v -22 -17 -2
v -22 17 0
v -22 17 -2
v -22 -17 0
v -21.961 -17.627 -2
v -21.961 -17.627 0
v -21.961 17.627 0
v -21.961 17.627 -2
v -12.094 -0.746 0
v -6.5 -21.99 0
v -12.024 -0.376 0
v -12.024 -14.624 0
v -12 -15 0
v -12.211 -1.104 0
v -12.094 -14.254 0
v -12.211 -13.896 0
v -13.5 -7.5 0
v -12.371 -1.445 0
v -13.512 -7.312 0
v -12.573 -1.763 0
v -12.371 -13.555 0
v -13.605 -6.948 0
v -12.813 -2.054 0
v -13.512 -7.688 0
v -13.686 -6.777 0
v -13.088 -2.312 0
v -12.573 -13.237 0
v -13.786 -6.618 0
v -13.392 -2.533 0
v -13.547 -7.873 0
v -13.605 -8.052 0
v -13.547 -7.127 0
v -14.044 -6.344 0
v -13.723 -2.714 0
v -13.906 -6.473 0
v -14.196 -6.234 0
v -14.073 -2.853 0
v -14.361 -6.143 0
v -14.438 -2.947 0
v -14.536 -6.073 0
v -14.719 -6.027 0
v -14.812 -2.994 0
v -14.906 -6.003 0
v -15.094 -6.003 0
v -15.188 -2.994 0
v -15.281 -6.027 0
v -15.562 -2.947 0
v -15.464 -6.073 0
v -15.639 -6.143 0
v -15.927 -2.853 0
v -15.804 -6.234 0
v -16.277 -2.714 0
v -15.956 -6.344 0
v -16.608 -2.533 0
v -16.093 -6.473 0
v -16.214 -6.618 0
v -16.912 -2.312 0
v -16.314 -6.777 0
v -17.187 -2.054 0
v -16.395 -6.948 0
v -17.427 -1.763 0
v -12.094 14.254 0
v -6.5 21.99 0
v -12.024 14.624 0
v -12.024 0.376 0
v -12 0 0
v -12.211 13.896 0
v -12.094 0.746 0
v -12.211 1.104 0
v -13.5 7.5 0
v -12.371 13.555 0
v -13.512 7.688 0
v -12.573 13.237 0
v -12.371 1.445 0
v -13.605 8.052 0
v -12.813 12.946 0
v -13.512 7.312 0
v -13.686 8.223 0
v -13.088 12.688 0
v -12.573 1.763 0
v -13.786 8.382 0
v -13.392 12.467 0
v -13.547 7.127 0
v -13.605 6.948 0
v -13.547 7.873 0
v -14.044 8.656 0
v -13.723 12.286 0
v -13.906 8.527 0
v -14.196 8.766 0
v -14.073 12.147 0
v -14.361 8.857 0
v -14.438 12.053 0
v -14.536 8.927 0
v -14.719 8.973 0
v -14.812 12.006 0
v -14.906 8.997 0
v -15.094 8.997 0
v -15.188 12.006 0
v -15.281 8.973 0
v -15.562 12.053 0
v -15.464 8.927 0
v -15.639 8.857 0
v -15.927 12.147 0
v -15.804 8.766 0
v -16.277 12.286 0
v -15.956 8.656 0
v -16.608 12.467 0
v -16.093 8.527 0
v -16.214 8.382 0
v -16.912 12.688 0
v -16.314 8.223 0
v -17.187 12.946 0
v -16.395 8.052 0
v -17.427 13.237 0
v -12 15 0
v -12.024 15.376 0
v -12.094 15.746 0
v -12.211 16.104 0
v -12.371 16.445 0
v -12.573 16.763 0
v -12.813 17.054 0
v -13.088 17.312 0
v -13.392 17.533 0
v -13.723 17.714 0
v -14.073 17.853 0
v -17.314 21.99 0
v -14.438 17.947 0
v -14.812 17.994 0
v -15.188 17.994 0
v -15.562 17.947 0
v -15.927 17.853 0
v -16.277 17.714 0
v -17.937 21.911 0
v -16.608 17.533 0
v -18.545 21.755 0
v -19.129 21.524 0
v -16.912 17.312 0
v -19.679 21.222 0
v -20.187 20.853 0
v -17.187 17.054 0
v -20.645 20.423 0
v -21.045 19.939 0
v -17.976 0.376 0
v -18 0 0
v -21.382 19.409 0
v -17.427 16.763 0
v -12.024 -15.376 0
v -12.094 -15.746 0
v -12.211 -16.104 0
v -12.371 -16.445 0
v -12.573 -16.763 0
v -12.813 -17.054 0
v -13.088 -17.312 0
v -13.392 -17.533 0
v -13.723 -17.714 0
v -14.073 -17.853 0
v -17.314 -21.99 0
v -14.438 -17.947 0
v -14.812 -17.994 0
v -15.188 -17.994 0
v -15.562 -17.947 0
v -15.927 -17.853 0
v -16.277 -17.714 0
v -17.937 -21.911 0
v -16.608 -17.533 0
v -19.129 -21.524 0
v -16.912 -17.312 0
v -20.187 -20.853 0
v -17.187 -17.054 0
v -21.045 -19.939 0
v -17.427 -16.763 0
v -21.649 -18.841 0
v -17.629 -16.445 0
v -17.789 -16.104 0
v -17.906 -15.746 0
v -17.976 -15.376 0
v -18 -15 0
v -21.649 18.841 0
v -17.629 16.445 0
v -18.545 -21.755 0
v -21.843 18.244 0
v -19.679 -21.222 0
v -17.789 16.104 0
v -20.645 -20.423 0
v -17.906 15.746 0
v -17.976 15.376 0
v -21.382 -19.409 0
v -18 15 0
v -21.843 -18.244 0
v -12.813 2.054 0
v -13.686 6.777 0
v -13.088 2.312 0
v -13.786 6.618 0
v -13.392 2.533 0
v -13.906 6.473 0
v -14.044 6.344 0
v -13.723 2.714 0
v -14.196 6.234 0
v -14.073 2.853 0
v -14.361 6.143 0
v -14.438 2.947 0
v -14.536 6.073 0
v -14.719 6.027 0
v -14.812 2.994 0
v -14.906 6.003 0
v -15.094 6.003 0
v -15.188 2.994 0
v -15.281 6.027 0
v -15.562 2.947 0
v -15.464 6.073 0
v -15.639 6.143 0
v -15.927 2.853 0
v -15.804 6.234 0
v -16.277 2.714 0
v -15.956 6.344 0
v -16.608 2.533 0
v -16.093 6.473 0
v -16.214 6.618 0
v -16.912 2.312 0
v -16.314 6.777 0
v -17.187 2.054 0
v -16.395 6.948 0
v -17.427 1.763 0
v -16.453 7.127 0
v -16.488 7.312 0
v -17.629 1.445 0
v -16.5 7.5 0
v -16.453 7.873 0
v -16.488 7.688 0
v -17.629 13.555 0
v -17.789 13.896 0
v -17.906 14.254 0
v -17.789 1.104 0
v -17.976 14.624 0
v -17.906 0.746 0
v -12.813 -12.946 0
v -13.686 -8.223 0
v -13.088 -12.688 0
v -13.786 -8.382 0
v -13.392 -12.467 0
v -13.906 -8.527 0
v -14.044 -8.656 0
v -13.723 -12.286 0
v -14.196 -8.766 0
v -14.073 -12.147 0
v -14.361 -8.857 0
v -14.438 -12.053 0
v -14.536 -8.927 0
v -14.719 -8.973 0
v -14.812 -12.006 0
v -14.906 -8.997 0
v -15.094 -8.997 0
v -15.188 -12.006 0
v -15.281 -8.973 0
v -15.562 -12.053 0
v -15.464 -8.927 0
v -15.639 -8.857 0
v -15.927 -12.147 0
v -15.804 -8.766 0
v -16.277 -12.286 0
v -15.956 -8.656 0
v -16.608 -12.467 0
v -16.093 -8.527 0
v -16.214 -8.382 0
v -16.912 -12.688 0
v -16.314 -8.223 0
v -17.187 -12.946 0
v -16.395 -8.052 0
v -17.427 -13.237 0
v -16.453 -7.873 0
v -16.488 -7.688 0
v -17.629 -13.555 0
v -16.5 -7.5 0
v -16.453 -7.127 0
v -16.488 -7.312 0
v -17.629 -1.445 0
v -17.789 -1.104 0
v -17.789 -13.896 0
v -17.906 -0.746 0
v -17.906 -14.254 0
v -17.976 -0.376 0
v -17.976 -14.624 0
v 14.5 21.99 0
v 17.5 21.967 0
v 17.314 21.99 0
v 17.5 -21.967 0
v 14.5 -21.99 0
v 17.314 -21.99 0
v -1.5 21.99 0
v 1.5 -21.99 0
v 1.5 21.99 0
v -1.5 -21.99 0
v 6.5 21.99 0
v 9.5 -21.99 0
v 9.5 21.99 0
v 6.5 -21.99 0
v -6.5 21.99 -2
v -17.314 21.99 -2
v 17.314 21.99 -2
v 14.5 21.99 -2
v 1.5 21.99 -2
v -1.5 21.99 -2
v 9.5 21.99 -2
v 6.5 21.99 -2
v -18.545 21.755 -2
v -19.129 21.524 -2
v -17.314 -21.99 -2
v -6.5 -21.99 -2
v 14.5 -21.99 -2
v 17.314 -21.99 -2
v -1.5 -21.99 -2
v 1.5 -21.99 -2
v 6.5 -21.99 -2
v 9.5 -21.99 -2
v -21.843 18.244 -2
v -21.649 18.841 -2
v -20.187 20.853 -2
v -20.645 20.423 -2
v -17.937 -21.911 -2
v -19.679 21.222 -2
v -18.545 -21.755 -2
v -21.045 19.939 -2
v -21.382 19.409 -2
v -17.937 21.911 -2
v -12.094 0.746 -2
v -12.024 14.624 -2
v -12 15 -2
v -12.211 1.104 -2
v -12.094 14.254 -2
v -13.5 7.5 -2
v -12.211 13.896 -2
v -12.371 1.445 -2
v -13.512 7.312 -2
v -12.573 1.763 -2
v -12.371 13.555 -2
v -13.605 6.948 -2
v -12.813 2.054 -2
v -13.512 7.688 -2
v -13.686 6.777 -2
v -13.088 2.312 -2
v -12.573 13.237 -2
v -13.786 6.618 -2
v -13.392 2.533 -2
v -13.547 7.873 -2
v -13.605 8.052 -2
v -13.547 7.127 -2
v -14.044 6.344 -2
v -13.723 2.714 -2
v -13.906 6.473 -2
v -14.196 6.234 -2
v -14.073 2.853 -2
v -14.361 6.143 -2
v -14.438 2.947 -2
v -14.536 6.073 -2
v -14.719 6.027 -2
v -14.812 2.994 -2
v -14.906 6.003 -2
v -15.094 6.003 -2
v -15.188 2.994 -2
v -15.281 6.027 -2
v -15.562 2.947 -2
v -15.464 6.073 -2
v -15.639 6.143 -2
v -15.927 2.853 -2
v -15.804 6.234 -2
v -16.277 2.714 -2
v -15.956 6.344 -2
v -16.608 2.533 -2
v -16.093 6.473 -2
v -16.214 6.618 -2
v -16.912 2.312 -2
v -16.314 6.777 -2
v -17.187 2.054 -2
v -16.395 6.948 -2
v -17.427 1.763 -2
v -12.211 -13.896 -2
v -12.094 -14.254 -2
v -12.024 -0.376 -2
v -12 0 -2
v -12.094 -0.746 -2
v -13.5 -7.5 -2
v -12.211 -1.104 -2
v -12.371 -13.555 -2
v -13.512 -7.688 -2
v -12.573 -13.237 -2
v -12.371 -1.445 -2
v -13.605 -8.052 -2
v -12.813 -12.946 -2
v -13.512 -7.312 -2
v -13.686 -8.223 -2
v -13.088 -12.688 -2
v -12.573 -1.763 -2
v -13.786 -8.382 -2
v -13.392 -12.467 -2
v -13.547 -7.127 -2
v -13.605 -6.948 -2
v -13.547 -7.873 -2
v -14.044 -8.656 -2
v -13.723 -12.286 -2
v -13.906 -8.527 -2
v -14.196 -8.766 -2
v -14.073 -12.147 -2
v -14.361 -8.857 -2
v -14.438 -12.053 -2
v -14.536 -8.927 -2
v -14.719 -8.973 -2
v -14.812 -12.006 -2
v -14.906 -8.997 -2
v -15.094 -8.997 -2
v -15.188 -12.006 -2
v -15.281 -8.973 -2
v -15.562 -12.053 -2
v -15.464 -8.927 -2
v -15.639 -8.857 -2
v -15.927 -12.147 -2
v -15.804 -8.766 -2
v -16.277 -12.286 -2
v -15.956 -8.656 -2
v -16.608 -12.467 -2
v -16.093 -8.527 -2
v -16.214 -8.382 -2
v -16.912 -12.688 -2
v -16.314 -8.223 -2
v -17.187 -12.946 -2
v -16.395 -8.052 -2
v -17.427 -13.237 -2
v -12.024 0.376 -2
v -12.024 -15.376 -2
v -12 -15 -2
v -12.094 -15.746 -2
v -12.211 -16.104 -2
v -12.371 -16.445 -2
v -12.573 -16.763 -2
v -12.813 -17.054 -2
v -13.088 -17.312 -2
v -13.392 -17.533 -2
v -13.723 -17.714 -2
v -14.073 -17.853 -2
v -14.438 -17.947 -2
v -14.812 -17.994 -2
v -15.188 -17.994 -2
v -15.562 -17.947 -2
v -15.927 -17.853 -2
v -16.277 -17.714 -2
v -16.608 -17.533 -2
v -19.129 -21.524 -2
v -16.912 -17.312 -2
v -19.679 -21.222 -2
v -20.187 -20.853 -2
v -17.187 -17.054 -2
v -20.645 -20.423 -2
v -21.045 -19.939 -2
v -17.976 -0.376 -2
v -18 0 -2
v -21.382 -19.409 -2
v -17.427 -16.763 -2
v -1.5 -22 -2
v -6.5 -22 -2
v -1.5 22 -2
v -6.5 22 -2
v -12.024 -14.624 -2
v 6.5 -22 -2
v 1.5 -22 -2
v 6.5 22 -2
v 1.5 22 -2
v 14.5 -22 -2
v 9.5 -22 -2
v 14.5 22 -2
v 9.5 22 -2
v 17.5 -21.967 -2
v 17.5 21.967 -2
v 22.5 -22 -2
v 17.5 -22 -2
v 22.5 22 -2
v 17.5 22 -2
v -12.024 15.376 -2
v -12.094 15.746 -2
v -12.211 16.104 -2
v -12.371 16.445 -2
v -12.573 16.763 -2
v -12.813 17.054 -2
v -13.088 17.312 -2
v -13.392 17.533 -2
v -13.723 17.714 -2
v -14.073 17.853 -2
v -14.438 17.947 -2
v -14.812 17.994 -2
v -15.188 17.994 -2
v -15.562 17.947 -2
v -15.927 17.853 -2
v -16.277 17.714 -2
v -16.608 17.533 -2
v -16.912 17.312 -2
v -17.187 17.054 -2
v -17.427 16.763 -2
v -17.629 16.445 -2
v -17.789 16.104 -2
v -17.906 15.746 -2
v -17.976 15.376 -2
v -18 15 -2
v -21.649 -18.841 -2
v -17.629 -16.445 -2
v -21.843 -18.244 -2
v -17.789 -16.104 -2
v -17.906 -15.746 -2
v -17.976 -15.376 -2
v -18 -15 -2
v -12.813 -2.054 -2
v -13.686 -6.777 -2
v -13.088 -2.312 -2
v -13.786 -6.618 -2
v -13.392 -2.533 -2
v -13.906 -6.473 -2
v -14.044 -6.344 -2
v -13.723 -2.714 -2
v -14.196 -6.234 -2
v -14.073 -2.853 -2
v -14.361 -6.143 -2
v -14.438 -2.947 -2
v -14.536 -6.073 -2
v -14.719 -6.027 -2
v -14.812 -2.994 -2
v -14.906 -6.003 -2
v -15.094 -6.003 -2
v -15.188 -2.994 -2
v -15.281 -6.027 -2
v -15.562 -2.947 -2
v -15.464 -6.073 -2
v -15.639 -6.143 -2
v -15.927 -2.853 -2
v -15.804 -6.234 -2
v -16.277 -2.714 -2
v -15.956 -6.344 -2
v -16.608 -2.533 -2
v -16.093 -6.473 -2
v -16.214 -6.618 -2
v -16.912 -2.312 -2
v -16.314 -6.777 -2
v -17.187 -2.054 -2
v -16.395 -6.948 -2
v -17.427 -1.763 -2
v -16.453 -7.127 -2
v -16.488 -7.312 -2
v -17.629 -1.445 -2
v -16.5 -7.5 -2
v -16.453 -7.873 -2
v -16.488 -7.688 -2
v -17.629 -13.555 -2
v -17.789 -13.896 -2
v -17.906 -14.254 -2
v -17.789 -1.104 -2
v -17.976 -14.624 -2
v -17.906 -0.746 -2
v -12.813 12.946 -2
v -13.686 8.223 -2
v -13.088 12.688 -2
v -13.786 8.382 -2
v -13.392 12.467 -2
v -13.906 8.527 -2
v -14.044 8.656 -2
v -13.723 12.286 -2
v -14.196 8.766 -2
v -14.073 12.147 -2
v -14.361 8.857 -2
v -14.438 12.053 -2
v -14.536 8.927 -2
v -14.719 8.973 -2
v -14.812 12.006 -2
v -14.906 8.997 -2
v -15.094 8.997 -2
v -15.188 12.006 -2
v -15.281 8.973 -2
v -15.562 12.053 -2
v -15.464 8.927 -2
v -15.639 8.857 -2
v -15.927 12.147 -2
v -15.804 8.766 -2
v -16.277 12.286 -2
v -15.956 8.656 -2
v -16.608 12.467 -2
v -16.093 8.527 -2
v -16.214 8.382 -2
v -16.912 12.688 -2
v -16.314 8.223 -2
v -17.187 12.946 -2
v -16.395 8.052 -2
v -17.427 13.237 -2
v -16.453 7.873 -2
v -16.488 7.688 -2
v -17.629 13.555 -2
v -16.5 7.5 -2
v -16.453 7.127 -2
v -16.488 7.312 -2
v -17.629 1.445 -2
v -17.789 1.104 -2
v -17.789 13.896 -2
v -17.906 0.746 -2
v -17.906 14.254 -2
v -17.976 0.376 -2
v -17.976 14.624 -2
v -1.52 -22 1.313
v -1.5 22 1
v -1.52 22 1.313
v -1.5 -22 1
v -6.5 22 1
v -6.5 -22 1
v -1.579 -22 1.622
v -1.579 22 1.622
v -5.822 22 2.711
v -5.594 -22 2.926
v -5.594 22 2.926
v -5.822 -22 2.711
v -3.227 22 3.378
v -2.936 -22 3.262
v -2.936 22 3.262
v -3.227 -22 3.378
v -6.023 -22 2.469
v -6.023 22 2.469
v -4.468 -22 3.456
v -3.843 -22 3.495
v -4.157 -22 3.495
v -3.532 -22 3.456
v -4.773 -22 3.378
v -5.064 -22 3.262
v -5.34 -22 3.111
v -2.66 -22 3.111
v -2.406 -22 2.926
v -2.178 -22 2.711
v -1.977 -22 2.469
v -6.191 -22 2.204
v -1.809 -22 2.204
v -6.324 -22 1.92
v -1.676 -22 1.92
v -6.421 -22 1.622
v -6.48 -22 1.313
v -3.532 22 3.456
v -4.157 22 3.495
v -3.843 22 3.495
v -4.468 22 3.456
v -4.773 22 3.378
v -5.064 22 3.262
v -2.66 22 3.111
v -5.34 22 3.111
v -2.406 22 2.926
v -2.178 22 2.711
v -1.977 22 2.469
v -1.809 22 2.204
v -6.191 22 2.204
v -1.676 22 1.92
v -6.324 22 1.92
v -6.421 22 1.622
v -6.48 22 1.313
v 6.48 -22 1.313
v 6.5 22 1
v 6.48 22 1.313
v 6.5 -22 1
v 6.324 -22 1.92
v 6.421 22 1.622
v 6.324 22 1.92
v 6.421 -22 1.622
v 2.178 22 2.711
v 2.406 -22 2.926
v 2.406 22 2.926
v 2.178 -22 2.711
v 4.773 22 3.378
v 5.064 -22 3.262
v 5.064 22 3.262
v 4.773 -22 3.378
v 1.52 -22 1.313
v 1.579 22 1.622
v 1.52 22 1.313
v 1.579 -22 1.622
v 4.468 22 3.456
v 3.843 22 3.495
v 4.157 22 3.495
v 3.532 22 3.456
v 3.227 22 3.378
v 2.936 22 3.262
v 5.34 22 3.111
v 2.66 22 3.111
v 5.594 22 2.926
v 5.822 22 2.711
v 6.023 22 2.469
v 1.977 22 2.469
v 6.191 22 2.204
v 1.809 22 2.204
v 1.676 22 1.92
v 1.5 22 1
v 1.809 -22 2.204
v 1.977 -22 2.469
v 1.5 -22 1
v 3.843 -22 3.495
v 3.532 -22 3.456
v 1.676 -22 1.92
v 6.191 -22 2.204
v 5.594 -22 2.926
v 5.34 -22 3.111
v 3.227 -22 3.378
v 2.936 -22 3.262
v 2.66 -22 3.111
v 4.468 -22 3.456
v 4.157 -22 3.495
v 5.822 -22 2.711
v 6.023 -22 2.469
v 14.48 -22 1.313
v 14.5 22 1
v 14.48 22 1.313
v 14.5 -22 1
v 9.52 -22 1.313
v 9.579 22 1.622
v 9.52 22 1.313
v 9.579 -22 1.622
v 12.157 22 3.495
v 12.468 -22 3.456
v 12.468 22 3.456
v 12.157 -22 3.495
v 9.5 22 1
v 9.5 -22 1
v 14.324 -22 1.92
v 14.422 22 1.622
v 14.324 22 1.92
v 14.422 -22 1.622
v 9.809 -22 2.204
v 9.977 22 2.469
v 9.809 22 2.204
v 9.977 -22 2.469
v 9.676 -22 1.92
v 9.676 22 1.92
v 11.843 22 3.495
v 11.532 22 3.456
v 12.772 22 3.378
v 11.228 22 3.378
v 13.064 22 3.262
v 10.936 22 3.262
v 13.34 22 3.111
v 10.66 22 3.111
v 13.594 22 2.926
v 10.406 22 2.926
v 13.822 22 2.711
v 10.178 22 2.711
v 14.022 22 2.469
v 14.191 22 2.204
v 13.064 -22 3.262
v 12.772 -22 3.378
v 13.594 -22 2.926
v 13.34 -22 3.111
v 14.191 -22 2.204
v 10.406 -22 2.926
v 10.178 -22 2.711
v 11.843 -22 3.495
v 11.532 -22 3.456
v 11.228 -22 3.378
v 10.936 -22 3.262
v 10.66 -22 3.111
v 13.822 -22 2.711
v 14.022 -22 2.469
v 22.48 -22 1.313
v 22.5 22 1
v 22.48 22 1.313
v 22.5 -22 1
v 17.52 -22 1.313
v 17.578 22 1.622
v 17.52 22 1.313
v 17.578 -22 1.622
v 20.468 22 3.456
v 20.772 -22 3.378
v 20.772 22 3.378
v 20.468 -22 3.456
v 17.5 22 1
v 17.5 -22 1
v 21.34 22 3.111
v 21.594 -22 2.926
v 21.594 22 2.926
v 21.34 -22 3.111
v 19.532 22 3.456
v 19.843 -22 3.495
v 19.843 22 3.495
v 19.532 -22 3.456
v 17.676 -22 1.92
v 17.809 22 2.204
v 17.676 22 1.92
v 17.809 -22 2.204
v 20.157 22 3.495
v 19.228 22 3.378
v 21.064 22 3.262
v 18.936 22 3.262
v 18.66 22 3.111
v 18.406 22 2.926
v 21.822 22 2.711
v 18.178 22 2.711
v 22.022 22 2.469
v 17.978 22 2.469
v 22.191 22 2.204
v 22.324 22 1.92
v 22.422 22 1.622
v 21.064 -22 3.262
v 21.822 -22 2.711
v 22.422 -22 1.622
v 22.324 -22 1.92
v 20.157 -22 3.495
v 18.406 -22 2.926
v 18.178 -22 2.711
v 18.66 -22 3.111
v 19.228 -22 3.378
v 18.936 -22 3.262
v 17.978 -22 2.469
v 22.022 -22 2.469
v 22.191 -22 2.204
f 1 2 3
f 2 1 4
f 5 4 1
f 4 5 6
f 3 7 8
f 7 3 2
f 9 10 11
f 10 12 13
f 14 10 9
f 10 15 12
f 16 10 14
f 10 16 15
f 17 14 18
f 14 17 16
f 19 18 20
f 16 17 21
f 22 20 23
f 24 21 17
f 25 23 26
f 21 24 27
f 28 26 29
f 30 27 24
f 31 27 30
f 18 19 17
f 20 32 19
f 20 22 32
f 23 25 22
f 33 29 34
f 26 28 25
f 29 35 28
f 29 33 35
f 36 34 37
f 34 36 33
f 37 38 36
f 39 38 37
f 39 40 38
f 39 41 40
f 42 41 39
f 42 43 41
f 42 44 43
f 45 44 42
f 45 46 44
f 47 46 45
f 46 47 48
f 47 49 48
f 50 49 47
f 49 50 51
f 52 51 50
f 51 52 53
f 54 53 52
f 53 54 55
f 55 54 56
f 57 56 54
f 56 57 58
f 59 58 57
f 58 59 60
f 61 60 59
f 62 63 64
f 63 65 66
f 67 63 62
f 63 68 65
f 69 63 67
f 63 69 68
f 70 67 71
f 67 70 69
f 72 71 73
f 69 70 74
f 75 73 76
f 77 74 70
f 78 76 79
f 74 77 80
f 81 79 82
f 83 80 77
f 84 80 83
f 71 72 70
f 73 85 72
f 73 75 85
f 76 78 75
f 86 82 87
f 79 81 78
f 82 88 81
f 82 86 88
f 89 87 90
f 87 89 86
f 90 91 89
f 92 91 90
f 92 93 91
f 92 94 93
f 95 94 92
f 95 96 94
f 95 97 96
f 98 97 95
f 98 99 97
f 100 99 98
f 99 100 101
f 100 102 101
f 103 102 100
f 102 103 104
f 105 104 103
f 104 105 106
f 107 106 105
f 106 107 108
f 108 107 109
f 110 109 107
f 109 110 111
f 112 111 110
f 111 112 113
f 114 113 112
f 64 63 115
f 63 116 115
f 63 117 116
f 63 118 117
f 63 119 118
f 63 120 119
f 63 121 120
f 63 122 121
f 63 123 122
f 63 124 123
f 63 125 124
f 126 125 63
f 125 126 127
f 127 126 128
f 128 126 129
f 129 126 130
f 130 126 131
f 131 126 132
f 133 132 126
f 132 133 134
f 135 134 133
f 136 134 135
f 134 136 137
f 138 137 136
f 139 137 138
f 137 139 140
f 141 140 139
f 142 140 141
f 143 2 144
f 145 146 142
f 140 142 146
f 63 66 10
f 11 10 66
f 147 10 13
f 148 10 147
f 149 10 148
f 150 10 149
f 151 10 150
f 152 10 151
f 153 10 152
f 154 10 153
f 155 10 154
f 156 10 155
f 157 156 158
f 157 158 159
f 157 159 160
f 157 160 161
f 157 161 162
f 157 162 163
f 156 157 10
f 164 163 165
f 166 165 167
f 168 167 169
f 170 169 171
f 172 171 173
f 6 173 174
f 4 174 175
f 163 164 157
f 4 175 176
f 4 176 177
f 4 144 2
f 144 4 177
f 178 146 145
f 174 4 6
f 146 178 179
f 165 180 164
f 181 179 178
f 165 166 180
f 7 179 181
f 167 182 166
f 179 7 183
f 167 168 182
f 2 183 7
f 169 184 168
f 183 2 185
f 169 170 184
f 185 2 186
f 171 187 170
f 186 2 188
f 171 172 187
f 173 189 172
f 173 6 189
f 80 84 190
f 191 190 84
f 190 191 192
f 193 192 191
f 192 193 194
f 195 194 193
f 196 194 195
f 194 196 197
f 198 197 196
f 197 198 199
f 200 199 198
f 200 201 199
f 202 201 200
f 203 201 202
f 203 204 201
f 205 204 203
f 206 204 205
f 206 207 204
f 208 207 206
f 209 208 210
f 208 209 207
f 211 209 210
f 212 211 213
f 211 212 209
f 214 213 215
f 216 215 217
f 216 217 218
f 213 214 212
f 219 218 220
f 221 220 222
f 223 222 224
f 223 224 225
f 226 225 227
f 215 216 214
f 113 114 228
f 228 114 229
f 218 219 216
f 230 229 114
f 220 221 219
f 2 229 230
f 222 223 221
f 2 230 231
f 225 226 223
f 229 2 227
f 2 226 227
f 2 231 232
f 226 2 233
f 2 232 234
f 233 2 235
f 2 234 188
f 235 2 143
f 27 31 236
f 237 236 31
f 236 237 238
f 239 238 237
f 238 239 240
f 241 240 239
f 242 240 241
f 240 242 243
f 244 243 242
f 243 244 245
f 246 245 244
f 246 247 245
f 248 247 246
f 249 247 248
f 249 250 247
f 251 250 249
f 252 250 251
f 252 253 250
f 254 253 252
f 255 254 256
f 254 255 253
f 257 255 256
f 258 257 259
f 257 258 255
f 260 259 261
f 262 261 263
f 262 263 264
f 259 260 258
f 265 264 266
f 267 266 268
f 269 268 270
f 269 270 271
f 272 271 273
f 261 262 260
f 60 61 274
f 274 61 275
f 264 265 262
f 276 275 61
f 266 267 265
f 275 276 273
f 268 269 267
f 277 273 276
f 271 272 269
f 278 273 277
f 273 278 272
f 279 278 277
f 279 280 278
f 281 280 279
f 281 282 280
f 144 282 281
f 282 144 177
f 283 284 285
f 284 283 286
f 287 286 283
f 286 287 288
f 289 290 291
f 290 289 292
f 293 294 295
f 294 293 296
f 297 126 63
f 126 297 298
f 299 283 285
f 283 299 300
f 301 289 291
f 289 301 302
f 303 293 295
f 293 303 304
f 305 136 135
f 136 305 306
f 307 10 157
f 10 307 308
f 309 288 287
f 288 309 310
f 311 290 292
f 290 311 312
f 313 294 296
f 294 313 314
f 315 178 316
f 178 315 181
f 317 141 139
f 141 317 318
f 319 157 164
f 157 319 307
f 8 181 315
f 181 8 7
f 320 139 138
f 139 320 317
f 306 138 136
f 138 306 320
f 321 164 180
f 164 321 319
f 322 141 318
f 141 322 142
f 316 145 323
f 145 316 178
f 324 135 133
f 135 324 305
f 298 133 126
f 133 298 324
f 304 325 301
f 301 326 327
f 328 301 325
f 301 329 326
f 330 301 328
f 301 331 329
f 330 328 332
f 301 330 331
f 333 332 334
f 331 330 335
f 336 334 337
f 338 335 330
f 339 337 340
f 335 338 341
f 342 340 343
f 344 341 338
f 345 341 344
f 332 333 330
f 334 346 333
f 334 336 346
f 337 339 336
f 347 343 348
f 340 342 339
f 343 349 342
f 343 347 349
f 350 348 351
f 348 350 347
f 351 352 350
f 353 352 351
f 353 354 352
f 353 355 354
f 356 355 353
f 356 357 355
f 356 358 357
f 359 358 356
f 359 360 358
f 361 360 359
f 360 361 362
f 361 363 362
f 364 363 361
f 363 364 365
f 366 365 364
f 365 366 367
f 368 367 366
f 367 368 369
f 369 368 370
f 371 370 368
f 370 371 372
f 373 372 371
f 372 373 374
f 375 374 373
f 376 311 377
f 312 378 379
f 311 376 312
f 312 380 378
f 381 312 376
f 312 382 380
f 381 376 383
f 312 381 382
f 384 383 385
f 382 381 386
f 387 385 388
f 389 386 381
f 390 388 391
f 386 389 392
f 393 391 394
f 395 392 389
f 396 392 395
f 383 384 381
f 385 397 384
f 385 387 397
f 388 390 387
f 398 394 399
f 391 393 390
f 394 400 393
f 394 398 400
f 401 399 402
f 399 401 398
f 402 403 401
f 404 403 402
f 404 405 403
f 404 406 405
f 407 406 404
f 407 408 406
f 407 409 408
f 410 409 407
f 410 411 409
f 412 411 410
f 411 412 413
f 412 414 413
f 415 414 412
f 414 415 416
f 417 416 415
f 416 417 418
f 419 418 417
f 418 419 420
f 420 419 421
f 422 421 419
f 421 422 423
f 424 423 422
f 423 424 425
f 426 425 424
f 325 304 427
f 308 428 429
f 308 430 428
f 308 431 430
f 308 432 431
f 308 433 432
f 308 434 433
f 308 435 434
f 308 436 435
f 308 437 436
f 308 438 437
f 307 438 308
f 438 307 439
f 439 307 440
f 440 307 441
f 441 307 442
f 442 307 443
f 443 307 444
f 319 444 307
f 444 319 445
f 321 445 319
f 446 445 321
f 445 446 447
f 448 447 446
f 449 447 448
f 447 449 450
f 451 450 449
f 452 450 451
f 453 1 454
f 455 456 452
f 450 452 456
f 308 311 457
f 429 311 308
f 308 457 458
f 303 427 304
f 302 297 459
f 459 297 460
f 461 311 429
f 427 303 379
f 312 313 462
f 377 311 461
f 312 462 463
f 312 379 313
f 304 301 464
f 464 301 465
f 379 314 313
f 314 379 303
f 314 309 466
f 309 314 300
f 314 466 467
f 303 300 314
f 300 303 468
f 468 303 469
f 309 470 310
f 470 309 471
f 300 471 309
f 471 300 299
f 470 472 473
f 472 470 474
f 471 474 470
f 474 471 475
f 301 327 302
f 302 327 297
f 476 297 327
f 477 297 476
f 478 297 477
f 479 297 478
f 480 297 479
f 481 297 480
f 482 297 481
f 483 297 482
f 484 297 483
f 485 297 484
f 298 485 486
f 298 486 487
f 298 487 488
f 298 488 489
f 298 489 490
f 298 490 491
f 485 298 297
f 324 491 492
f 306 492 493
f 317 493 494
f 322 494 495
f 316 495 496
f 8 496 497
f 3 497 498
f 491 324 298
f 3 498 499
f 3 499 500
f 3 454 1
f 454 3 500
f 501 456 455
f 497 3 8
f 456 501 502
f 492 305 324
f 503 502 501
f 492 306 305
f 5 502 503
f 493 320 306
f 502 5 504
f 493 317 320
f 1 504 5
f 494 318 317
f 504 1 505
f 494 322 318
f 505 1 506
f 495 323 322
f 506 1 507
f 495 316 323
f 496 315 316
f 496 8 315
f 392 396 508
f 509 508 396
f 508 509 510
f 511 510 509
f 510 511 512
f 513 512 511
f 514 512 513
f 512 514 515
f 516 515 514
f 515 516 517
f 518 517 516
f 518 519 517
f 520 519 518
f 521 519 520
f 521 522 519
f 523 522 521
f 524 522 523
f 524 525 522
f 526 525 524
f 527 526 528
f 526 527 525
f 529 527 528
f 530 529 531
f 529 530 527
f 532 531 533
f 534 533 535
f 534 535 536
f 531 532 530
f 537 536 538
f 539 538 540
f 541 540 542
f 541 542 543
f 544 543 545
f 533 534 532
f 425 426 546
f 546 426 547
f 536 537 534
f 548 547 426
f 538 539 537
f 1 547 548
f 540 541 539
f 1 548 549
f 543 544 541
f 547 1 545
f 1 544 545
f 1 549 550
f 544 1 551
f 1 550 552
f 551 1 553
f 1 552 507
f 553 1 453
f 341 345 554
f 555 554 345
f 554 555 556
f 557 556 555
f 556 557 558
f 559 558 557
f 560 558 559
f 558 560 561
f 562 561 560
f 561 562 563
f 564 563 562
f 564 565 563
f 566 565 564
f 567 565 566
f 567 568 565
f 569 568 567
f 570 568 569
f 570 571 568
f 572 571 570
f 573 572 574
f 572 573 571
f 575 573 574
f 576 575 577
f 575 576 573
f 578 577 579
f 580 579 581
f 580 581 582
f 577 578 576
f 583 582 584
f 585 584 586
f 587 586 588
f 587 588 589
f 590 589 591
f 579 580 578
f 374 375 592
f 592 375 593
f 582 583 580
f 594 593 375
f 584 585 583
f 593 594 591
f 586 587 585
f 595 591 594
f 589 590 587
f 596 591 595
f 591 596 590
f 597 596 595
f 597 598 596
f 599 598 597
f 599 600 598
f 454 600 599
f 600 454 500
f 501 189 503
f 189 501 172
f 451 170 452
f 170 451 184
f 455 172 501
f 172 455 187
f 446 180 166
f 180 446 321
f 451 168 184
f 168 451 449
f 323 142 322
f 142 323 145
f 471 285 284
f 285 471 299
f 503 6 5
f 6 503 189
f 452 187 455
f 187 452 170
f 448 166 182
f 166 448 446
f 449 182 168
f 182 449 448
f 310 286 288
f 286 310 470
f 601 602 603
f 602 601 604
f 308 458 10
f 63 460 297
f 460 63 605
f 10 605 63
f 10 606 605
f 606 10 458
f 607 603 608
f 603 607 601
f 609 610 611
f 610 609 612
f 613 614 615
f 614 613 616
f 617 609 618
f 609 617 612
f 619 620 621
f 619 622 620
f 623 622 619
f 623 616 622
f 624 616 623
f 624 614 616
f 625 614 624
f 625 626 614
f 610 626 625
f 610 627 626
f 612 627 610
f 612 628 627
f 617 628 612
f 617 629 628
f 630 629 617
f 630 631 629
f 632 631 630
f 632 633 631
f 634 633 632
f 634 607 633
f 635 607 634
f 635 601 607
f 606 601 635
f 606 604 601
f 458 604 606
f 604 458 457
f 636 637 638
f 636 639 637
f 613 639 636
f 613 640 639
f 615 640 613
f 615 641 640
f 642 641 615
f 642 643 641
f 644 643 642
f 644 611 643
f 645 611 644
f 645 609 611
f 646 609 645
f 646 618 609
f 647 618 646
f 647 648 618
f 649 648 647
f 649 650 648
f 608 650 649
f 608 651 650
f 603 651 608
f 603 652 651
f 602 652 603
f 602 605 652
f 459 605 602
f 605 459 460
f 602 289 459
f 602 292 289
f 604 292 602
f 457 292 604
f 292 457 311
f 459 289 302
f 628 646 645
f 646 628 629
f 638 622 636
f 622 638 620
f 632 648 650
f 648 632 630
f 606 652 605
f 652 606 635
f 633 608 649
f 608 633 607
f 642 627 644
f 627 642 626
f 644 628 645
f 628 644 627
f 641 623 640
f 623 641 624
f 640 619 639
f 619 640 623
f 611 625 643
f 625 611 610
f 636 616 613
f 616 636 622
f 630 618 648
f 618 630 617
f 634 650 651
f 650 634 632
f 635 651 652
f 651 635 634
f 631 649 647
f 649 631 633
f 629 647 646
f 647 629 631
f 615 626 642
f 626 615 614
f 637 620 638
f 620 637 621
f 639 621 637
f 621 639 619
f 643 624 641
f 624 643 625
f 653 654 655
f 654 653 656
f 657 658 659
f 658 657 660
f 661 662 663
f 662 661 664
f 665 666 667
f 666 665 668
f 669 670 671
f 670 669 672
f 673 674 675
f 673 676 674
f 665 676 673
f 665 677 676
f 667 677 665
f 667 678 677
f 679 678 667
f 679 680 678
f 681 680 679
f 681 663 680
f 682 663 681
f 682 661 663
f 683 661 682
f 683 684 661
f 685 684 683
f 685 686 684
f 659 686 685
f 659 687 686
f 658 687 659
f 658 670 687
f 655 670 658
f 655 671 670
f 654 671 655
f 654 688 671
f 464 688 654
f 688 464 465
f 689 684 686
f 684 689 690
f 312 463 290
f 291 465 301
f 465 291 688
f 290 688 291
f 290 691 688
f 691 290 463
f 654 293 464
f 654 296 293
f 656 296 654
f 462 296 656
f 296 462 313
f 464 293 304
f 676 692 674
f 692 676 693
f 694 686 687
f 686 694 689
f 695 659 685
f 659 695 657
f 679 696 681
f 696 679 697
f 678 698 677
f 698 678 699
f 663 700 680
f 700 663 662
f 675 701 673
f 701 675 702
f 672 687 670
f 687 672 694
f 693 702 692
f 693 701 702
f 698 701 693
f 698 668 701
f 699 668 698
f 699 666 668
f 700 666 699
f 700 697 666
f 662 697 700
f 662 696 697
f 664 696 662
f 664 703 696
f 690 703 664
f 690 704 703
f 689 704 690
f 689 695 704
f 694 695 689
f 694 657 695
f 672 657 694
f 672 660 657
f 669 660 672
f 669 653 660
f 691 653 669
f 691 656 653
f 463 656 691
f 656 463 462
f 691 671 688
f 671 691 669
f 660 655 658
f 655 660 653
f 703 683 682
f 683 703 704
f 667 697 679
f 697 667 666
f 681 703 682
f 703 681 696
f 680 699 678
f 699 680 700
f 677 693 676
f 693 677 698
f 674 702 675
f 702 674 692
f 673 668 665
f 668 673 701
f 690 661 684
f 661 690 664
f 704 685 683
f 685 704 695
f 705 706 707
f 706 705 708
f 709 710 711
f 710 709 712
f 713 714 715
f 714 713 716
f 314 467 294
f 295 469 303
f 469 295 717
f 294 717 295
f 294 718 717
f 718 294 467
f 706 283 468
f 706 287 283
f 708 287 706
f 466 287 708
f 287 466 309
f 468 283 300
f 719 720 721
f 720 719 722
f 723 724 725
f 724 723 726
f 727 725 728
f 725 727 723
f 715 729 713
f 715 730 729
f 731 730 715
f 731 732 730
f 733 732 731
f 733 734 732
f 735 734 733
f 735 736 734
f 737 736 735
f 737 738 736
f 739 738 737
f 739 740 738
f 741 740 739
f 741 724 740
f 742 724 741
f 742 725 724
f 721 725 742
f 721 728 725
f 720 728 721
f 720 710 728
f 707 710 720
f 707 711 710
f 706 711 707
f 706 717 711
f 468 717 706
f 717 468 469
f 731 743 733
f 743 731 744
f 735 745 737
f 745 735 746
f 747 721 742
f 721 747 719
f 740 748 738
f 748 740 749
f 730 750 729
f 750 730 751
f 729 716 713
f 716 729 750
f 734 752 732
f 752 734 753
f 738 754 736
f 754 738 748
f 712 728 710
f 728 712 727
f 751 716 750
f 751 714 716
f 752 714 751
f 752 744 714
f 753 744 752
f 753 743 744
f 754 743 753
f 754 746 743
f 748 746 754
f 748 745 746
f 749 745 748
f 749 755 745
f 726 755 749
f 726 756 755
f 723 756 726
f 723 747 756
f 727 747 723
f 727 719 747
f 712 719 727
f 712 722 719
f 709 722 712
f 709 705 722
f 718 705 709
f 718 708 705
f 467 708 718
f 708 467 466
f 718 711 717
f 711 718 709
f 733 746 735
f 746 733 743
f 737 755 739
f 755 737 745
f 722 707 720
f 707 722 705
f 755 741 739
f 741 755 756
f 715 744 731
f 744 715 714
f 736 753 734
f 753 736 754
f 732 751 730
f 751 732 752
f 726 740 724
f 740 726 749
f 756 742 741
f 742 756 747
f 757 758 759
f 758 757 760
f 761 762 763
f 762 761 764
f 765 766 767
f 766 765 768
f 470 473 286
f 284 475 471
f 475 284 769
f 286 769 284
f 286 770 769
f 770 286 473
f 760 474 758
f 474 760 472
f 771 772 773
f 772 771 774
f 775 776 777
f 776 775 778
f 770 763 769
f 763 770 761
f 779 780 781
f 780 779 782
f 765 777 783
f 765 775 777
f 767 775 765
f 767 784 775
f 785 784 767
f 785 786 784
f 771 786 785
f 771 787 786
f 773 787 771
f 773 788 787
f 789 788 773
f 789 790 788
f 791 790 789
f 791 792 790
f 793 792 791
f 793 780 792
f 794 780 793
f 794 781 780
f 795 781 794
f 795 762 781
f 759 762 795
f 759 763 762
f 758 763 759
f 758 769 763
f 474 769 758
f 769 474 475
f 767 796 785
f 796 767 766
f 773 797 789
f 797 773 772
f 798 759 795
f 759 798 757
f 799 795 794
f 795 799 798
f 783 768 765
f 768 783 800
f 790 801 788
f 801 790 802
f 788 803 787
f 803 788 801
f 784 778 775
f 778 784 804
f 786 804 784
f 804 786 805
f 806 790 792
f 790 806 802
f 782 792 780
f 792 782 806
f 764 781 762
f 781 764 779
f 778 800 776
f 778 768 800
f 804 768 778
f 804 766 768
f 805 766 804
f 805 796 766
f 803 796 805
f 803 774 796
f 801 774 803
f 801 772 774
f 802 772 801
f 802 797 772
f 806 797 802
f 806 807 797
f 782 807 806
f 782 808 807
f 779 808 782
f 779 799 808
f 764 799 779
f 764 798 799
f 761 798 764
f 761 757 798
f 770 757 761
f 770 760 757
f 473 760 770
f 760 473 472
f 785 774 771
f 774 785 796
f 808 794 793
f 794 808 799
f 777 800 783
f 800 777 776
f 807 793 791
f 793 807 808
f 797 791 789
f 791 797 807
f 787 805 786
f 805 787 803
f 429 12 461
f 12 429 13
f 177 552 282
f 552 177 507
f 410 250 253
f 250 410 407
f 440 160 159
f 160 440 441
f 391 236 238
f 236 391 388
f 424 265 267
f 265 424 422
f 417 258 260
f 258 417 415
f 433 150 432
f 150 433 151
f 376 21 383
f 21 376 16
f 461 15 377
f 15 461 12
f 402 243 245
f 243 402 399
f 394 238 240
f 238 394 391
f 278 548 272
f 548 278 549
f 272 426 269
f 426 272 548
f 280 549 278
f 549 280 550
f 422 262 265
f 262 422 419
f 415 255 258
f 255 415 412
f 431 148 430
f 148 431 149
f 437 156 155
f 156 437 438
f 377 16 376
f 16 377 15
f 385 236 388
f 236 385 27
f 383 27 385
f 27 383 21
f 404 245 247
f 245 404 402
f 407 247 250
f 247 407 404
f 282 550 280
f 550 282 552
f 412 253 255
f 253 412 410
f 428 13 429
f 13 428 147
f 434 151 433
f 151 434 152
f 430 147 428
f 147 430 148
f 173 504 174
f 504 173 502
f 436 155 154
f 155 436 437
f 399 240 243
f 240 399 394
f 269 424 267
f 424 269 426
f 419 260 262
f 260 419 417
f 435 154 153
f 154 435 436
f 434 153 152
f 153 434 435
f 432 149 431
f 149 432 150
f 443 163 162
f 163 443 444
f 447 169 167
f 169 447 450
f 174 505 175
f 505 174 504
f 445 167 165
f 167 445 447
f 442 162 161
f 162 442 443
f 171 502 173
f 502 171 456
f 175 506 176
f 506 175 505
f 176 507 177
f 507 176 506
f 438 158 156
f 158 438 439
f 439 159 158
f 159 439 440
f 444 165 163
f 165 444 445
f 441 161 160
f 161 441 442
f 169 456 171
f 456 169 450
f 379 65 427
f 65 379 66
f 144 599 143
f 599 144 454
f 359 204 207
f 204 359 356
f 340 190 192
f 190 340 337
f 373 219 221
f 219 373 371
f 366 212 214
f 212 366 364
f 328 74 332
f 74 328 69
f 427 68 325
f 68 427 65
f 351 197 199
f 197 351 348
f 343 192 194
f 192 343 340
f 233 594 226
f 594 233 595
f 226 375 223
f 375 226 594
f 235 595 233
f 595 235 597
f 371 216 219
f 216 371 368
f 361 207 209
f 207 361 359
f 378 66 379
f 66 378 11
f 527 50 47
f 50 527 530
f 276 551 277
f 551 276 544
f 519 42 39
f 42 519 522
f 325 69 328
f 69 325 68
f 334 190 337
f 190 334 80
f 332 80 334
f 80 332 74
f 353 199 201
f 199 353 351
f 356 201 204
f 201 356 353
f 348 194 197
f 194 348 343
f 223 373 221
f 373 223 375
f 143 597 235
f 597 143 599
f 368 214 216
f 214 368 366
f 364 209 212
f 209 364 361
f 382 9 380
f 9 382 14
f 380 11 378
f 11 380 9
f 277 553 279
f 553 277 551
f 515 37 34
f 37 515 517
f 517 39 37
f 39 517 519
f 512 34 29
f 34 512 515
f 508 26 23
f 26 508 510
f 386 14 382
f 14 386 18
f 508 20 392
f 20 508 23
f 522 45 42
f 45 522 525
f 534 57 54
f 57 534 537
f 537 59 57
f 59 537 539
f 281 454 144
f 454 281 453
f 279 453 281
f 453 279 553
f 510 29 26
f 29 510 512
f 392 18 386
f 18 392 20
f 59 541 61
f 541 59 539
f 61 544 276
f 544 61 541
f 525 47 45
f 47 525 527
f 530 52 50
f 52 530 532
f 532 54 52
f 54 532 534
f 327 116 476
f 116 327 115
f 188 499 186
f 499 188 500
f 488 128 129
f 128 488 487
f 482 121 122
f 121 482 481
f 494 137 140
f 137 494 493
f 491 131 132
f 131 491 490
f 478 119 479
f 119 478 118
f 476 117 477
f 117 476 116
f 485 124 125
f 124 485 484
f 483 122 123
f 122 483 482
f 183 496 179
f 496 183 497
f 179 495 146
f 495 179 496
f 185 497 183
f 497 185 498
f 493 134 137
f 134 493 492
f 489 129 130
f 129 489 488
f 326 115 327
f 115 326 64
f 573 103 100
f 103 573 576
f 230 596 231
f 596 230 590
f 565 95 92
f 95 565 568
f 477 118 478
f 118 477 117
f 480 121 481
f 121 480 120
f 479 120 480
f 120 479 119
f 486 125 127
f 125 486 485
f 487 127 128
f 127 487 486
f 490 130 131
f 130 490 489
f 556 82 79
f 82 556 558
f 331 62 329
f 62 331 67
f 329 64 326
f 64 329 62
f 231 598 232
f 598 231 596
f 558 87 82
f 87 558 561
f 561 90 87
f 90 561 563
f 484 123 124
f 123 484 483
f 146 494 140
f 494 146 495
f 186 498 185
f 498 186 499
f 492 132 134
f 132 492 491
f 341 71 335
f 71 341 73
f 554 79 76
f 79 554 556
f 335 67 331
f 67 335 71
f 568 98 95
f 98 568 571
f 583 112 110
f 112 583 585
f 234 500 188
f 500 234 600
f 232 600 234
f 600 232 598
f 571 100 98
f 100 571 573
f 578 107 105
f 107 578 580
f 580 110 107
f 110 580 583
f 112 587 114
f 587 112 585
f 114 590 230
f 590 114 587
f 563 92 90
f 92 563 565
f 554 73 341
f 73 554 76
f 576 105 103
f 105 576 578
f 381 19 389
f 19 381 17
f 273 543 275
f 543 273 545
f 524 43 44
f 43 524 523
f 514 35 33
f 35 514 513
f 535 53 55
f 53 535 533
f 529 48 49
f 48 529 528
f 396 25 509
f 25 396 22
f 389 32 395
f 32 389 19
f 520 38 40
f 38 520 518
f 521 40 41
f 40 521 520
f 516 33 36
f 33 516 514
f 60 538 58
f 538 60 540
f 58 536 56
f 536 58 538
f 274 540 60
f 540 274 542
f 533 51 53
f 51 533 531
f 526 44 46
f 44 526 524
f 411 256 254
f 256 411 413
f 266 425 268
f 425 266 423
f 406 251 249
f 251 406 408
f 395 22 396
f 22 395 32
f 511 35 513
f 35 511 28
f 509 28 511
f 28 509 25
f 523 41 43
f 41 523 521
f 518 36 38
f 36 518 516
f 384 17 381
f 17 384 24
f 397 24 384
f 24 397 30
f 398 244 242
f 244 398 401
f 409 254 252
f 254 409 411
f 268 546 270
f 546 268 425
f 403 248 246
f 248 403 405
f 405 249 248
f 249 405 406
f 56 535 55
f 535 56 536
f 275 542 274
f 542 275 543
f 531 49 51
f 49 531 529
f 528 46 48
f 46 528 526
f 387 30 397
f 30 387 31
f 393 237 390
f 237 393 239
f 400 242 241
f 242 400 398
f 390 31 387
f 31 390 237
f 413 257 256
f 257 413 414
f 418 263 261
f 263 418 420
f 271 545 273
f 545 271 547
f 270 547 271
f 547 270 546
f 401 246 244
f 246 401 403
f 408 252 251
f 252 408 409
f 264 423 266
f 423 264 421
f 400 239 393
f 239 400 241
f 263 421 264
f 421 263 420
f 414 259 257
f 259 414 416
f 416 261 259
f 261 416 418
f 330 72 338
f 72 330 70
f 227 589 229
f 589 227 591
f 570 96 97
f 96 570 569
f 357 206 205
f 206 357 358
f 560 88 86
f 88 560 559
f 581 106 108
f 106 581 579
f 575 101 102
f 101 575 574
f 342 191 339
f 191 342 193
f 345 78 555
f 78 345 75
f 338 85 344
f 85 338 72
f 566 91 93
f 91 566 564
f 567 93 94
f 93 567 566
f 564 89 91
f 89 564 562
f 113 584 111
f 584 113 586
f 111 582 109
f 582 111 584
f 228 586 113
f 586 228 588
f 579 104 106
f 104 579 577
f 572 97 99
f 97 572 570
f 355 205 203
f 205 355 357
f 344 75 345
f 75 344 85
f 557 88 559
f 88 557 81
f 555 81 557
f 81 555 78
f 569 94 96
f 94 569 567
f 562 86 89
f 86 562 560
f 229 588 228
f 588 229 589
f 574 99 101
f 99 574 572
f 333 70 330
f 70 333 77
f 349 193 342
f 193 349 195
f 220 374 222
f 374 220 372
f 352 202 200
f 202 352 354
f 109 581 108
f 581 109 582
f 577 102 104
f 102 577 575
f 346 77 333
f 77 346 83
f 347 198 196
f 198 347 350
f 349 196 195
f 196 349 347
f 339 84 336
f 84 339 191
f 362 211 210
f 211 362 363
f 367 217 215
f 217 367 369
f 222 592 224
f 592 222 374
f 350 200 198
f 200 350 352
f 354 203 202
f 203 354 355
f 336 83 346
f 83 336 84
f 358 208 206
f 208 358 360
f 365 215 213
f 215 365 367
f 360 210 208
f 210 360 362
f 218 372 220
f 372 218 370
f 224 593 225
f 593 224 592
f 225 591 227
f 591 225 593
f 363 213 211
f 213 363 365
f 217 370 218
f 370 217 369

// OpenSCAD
$fn = 50;


difference() {
	union() {
		translate(v = [0, 0, -2]) {
			hull() {
				translate(v = [-17.0000000000, 17.0000000000, 0]) {
					cylinder(h = 2, r = 5);
				}
				translate(v = [17.0000000000, 17.0000000000, 0]) {
					cylinder(h = 2, r = 5);
				}
				translate(v = [-17.0000000000, -17.0000000000, 0]) {
					cylinder(h = 2, r = 5);
				}
				translate(v = [17.0000000000, -17.0000000000, 0]) {
					cylinder(h = 2, r = 5);
				}
			}
		}
		translate(v = [-4.0000000000, 22.0000000000, -1.5000000000]) {
			rotate(a = [90, 0, 0]) {
				hull() {
					translate(v = [-0.0000000000, 2.5000000000, 0]) {
						cylinder(h = 44, r = 2.5000000000);
					}
					translate(v = [0.0000000000, 2.5000000000, 0]) {
						cylinder(h = 44, r = 2.5000000000);
					}
					translate(v = [-0.0000000000, -2.5000000000, 0]) {
						cylinder(h = 44, r = 2.5000000000);
					}
					translate(v = [0.0000000000, -2.5000000000, 0]) {
						cylinder(h = 44, r = 2.5000000000);
					}
				}
			}
		}
		translate(v = [4.0000000000, 22.0000000000, -1.5000000000]) {
			rotate(a = [90, 0, 0]) {
				hull() {
					translate(v = [-0.0000000000, 2.5000000000, 0]) {
						cylinder(h = 44, r = 2.5000000000);
					}
					translate(v = [0.0000000000, 2.5000000000, 0]) {
						cylinder(h = 44, r = 2.5000000000);
					}
					translate(v = [-0.0000000000, -2.5000000000, 0]) {
						cylinder(h = 44, r = 2.5000000000);
					}
					translate(v = [0.0000000000, -2.5000000000, 0]) {
						cylinder(h = 44, r = 2.5000000000);
					}
				}
			}
		}
		translate(v = [12.0000000000, 22.0000000000, -1.5000000000]) {
			rotate(a = [90, 0, 0]) {
				hull() {
					translate(v = [-0.0000000000, 2.5000000000, 0]) {
						cylinder(h = 44, r = 2.5000000000);
					}
					translate(v = [0.0000000000, 2.5000000000, 0]) {
						cylinder(h = 44, r = 2.5000000000);
					}
					translate(v = [-0.0000000000, -2.5000000000, 0]) {
						cylinder(h = 44, r = 2.5000000000);
					}
					translate(v = [0.0000000000, -2.5000000000, 0]) {
						cylinder(h = 44, r = 2.5000000000);
					}
				}
			}
		}
		translate(v = [20.0000000000, 22.0000000000, -1.5000000000]) {
			rotate(a = [90, 0, 0]) {
				hull() {
					translate(v = [-0.0000000000, 2.5000000000, 0]) {
						cylinder(h = 44, r = 2.5000000000);
					}
					translate(v = [0.0000000000, 2.5000000000, 0]) {
						cylinder(h = 44, r = 2.5000000000);
					}
					translate(v = [-0.0000000000, -2.5000000000, 0]) {
						cylinder(h = 44, r = 2.5000000000);
					}
					translate(v = [0.0000000000, -2.5000000000, 0]) {
						cylinder(h = 44, r = 2.5000000000);
					}
				}
			}
		}
	}
	union() {
		translate(v = [-250.0000000000, -250.0000000000, -502]) {
			cube(size = [500, 500, 500]);
		}
		translate(v = [-250.0000000000, -250.0000000000, -502]) {
			cube(size = [500, 500, 500]);
		}
		translate(v = [-250.0000000000, -250.0000000000, -502]) {
			cube(size = [500, 500, 500]);
		}
		translate(v = [-15.0000000000, -15.0000000000, -100.0000000000]) {
			cylinder(h = 200, r = 3.0000000000);
		}
		translate(v = [-15.0000000000, 0.0000000000, -100.0000000000]) {
			cylinder(h = 200, r = 3.0000000000);
		}
		translate(v = [-15.0000000000, 15.0000000000, -100.0000000000]) {
			cylinder(h = 200, r = 3.0000000000);
		}
		translate(v = [-15.0000000000, -15.0000000000, -100.0000000000]) {
			cylinder(h = 200, r = 1.5000000000);
		}
		translate(v = [-15.0000000000, -7.5000000000, -100.0000000000]) {
			cylinder(h = 200, r = 1.5000000000);
		}
		translate(v = [-15.0000000000, 0.0000000000, -100.0000000000]) {
			cylinder(h = 200, r = 1.5000000000);
		}
		translate(v = [-15.0000000000, 7.5000000000, -100.0000000000]) {
			cylinder(h = 200, r = 1.5000000000);
		}
		translate(v = [-15.0000000000, 15.0000000000, -100.0000000000]) {
			cylinder(h = 200, r = 1.5000000000);
		}
		translate(v = [-15.0000000000, -15.0000000000, -100.0000000000]) {
			cylinder(h = 200, r = 1.5000000000);
		}
		translate(v = [-15.0000000000, -7.5000000000, -100.0000000000]) {
			cylinder(h = 200, r = 1.5000000000);
		}
		translate(v = [-15.0000000000, 0.0000000000, -100.0000000000]) {
			cylinder(h = 200, r = 1.5000000000);
		}
		translate(v = [-15.0000000000, 7.5000000000, -100.0000000000]) {
			cylinder(h = 200, r = 1.5000000000);
		}
		translate(v = [-15.0000000000, 15.0000000000, -100.0000000000]) {
			cylinder(h = 200, r = 1.5000000000);
		}
		translate(v = [-15.0000000000, -15.0000000000, -100.0000000000]) {
			cylinder(h = 200, r = 1.5000000000);
		}
		translate(v = [-15.0000000000, -7.5000000000, -100.0000000000]) {
			cylinder(h = 200, r = 1.5000000000);
		}
		translate(v = [-15.0000000000, 0.0000000000, -100.0000000000]) {
			cylinder(h = 200, r = 1.5000000000);
		}
		translate(v = [-15.0000000000, 7.5000000000, -100.0000000000]) {
			cylinder(h = 200, r = 1.5000000000);
		}
		translate(v = [-15.0000000000, 15.0000000000, -100.0000000000]) {
			cylinder(h = 200, r = 1.5000000000);
		}
	}
}
